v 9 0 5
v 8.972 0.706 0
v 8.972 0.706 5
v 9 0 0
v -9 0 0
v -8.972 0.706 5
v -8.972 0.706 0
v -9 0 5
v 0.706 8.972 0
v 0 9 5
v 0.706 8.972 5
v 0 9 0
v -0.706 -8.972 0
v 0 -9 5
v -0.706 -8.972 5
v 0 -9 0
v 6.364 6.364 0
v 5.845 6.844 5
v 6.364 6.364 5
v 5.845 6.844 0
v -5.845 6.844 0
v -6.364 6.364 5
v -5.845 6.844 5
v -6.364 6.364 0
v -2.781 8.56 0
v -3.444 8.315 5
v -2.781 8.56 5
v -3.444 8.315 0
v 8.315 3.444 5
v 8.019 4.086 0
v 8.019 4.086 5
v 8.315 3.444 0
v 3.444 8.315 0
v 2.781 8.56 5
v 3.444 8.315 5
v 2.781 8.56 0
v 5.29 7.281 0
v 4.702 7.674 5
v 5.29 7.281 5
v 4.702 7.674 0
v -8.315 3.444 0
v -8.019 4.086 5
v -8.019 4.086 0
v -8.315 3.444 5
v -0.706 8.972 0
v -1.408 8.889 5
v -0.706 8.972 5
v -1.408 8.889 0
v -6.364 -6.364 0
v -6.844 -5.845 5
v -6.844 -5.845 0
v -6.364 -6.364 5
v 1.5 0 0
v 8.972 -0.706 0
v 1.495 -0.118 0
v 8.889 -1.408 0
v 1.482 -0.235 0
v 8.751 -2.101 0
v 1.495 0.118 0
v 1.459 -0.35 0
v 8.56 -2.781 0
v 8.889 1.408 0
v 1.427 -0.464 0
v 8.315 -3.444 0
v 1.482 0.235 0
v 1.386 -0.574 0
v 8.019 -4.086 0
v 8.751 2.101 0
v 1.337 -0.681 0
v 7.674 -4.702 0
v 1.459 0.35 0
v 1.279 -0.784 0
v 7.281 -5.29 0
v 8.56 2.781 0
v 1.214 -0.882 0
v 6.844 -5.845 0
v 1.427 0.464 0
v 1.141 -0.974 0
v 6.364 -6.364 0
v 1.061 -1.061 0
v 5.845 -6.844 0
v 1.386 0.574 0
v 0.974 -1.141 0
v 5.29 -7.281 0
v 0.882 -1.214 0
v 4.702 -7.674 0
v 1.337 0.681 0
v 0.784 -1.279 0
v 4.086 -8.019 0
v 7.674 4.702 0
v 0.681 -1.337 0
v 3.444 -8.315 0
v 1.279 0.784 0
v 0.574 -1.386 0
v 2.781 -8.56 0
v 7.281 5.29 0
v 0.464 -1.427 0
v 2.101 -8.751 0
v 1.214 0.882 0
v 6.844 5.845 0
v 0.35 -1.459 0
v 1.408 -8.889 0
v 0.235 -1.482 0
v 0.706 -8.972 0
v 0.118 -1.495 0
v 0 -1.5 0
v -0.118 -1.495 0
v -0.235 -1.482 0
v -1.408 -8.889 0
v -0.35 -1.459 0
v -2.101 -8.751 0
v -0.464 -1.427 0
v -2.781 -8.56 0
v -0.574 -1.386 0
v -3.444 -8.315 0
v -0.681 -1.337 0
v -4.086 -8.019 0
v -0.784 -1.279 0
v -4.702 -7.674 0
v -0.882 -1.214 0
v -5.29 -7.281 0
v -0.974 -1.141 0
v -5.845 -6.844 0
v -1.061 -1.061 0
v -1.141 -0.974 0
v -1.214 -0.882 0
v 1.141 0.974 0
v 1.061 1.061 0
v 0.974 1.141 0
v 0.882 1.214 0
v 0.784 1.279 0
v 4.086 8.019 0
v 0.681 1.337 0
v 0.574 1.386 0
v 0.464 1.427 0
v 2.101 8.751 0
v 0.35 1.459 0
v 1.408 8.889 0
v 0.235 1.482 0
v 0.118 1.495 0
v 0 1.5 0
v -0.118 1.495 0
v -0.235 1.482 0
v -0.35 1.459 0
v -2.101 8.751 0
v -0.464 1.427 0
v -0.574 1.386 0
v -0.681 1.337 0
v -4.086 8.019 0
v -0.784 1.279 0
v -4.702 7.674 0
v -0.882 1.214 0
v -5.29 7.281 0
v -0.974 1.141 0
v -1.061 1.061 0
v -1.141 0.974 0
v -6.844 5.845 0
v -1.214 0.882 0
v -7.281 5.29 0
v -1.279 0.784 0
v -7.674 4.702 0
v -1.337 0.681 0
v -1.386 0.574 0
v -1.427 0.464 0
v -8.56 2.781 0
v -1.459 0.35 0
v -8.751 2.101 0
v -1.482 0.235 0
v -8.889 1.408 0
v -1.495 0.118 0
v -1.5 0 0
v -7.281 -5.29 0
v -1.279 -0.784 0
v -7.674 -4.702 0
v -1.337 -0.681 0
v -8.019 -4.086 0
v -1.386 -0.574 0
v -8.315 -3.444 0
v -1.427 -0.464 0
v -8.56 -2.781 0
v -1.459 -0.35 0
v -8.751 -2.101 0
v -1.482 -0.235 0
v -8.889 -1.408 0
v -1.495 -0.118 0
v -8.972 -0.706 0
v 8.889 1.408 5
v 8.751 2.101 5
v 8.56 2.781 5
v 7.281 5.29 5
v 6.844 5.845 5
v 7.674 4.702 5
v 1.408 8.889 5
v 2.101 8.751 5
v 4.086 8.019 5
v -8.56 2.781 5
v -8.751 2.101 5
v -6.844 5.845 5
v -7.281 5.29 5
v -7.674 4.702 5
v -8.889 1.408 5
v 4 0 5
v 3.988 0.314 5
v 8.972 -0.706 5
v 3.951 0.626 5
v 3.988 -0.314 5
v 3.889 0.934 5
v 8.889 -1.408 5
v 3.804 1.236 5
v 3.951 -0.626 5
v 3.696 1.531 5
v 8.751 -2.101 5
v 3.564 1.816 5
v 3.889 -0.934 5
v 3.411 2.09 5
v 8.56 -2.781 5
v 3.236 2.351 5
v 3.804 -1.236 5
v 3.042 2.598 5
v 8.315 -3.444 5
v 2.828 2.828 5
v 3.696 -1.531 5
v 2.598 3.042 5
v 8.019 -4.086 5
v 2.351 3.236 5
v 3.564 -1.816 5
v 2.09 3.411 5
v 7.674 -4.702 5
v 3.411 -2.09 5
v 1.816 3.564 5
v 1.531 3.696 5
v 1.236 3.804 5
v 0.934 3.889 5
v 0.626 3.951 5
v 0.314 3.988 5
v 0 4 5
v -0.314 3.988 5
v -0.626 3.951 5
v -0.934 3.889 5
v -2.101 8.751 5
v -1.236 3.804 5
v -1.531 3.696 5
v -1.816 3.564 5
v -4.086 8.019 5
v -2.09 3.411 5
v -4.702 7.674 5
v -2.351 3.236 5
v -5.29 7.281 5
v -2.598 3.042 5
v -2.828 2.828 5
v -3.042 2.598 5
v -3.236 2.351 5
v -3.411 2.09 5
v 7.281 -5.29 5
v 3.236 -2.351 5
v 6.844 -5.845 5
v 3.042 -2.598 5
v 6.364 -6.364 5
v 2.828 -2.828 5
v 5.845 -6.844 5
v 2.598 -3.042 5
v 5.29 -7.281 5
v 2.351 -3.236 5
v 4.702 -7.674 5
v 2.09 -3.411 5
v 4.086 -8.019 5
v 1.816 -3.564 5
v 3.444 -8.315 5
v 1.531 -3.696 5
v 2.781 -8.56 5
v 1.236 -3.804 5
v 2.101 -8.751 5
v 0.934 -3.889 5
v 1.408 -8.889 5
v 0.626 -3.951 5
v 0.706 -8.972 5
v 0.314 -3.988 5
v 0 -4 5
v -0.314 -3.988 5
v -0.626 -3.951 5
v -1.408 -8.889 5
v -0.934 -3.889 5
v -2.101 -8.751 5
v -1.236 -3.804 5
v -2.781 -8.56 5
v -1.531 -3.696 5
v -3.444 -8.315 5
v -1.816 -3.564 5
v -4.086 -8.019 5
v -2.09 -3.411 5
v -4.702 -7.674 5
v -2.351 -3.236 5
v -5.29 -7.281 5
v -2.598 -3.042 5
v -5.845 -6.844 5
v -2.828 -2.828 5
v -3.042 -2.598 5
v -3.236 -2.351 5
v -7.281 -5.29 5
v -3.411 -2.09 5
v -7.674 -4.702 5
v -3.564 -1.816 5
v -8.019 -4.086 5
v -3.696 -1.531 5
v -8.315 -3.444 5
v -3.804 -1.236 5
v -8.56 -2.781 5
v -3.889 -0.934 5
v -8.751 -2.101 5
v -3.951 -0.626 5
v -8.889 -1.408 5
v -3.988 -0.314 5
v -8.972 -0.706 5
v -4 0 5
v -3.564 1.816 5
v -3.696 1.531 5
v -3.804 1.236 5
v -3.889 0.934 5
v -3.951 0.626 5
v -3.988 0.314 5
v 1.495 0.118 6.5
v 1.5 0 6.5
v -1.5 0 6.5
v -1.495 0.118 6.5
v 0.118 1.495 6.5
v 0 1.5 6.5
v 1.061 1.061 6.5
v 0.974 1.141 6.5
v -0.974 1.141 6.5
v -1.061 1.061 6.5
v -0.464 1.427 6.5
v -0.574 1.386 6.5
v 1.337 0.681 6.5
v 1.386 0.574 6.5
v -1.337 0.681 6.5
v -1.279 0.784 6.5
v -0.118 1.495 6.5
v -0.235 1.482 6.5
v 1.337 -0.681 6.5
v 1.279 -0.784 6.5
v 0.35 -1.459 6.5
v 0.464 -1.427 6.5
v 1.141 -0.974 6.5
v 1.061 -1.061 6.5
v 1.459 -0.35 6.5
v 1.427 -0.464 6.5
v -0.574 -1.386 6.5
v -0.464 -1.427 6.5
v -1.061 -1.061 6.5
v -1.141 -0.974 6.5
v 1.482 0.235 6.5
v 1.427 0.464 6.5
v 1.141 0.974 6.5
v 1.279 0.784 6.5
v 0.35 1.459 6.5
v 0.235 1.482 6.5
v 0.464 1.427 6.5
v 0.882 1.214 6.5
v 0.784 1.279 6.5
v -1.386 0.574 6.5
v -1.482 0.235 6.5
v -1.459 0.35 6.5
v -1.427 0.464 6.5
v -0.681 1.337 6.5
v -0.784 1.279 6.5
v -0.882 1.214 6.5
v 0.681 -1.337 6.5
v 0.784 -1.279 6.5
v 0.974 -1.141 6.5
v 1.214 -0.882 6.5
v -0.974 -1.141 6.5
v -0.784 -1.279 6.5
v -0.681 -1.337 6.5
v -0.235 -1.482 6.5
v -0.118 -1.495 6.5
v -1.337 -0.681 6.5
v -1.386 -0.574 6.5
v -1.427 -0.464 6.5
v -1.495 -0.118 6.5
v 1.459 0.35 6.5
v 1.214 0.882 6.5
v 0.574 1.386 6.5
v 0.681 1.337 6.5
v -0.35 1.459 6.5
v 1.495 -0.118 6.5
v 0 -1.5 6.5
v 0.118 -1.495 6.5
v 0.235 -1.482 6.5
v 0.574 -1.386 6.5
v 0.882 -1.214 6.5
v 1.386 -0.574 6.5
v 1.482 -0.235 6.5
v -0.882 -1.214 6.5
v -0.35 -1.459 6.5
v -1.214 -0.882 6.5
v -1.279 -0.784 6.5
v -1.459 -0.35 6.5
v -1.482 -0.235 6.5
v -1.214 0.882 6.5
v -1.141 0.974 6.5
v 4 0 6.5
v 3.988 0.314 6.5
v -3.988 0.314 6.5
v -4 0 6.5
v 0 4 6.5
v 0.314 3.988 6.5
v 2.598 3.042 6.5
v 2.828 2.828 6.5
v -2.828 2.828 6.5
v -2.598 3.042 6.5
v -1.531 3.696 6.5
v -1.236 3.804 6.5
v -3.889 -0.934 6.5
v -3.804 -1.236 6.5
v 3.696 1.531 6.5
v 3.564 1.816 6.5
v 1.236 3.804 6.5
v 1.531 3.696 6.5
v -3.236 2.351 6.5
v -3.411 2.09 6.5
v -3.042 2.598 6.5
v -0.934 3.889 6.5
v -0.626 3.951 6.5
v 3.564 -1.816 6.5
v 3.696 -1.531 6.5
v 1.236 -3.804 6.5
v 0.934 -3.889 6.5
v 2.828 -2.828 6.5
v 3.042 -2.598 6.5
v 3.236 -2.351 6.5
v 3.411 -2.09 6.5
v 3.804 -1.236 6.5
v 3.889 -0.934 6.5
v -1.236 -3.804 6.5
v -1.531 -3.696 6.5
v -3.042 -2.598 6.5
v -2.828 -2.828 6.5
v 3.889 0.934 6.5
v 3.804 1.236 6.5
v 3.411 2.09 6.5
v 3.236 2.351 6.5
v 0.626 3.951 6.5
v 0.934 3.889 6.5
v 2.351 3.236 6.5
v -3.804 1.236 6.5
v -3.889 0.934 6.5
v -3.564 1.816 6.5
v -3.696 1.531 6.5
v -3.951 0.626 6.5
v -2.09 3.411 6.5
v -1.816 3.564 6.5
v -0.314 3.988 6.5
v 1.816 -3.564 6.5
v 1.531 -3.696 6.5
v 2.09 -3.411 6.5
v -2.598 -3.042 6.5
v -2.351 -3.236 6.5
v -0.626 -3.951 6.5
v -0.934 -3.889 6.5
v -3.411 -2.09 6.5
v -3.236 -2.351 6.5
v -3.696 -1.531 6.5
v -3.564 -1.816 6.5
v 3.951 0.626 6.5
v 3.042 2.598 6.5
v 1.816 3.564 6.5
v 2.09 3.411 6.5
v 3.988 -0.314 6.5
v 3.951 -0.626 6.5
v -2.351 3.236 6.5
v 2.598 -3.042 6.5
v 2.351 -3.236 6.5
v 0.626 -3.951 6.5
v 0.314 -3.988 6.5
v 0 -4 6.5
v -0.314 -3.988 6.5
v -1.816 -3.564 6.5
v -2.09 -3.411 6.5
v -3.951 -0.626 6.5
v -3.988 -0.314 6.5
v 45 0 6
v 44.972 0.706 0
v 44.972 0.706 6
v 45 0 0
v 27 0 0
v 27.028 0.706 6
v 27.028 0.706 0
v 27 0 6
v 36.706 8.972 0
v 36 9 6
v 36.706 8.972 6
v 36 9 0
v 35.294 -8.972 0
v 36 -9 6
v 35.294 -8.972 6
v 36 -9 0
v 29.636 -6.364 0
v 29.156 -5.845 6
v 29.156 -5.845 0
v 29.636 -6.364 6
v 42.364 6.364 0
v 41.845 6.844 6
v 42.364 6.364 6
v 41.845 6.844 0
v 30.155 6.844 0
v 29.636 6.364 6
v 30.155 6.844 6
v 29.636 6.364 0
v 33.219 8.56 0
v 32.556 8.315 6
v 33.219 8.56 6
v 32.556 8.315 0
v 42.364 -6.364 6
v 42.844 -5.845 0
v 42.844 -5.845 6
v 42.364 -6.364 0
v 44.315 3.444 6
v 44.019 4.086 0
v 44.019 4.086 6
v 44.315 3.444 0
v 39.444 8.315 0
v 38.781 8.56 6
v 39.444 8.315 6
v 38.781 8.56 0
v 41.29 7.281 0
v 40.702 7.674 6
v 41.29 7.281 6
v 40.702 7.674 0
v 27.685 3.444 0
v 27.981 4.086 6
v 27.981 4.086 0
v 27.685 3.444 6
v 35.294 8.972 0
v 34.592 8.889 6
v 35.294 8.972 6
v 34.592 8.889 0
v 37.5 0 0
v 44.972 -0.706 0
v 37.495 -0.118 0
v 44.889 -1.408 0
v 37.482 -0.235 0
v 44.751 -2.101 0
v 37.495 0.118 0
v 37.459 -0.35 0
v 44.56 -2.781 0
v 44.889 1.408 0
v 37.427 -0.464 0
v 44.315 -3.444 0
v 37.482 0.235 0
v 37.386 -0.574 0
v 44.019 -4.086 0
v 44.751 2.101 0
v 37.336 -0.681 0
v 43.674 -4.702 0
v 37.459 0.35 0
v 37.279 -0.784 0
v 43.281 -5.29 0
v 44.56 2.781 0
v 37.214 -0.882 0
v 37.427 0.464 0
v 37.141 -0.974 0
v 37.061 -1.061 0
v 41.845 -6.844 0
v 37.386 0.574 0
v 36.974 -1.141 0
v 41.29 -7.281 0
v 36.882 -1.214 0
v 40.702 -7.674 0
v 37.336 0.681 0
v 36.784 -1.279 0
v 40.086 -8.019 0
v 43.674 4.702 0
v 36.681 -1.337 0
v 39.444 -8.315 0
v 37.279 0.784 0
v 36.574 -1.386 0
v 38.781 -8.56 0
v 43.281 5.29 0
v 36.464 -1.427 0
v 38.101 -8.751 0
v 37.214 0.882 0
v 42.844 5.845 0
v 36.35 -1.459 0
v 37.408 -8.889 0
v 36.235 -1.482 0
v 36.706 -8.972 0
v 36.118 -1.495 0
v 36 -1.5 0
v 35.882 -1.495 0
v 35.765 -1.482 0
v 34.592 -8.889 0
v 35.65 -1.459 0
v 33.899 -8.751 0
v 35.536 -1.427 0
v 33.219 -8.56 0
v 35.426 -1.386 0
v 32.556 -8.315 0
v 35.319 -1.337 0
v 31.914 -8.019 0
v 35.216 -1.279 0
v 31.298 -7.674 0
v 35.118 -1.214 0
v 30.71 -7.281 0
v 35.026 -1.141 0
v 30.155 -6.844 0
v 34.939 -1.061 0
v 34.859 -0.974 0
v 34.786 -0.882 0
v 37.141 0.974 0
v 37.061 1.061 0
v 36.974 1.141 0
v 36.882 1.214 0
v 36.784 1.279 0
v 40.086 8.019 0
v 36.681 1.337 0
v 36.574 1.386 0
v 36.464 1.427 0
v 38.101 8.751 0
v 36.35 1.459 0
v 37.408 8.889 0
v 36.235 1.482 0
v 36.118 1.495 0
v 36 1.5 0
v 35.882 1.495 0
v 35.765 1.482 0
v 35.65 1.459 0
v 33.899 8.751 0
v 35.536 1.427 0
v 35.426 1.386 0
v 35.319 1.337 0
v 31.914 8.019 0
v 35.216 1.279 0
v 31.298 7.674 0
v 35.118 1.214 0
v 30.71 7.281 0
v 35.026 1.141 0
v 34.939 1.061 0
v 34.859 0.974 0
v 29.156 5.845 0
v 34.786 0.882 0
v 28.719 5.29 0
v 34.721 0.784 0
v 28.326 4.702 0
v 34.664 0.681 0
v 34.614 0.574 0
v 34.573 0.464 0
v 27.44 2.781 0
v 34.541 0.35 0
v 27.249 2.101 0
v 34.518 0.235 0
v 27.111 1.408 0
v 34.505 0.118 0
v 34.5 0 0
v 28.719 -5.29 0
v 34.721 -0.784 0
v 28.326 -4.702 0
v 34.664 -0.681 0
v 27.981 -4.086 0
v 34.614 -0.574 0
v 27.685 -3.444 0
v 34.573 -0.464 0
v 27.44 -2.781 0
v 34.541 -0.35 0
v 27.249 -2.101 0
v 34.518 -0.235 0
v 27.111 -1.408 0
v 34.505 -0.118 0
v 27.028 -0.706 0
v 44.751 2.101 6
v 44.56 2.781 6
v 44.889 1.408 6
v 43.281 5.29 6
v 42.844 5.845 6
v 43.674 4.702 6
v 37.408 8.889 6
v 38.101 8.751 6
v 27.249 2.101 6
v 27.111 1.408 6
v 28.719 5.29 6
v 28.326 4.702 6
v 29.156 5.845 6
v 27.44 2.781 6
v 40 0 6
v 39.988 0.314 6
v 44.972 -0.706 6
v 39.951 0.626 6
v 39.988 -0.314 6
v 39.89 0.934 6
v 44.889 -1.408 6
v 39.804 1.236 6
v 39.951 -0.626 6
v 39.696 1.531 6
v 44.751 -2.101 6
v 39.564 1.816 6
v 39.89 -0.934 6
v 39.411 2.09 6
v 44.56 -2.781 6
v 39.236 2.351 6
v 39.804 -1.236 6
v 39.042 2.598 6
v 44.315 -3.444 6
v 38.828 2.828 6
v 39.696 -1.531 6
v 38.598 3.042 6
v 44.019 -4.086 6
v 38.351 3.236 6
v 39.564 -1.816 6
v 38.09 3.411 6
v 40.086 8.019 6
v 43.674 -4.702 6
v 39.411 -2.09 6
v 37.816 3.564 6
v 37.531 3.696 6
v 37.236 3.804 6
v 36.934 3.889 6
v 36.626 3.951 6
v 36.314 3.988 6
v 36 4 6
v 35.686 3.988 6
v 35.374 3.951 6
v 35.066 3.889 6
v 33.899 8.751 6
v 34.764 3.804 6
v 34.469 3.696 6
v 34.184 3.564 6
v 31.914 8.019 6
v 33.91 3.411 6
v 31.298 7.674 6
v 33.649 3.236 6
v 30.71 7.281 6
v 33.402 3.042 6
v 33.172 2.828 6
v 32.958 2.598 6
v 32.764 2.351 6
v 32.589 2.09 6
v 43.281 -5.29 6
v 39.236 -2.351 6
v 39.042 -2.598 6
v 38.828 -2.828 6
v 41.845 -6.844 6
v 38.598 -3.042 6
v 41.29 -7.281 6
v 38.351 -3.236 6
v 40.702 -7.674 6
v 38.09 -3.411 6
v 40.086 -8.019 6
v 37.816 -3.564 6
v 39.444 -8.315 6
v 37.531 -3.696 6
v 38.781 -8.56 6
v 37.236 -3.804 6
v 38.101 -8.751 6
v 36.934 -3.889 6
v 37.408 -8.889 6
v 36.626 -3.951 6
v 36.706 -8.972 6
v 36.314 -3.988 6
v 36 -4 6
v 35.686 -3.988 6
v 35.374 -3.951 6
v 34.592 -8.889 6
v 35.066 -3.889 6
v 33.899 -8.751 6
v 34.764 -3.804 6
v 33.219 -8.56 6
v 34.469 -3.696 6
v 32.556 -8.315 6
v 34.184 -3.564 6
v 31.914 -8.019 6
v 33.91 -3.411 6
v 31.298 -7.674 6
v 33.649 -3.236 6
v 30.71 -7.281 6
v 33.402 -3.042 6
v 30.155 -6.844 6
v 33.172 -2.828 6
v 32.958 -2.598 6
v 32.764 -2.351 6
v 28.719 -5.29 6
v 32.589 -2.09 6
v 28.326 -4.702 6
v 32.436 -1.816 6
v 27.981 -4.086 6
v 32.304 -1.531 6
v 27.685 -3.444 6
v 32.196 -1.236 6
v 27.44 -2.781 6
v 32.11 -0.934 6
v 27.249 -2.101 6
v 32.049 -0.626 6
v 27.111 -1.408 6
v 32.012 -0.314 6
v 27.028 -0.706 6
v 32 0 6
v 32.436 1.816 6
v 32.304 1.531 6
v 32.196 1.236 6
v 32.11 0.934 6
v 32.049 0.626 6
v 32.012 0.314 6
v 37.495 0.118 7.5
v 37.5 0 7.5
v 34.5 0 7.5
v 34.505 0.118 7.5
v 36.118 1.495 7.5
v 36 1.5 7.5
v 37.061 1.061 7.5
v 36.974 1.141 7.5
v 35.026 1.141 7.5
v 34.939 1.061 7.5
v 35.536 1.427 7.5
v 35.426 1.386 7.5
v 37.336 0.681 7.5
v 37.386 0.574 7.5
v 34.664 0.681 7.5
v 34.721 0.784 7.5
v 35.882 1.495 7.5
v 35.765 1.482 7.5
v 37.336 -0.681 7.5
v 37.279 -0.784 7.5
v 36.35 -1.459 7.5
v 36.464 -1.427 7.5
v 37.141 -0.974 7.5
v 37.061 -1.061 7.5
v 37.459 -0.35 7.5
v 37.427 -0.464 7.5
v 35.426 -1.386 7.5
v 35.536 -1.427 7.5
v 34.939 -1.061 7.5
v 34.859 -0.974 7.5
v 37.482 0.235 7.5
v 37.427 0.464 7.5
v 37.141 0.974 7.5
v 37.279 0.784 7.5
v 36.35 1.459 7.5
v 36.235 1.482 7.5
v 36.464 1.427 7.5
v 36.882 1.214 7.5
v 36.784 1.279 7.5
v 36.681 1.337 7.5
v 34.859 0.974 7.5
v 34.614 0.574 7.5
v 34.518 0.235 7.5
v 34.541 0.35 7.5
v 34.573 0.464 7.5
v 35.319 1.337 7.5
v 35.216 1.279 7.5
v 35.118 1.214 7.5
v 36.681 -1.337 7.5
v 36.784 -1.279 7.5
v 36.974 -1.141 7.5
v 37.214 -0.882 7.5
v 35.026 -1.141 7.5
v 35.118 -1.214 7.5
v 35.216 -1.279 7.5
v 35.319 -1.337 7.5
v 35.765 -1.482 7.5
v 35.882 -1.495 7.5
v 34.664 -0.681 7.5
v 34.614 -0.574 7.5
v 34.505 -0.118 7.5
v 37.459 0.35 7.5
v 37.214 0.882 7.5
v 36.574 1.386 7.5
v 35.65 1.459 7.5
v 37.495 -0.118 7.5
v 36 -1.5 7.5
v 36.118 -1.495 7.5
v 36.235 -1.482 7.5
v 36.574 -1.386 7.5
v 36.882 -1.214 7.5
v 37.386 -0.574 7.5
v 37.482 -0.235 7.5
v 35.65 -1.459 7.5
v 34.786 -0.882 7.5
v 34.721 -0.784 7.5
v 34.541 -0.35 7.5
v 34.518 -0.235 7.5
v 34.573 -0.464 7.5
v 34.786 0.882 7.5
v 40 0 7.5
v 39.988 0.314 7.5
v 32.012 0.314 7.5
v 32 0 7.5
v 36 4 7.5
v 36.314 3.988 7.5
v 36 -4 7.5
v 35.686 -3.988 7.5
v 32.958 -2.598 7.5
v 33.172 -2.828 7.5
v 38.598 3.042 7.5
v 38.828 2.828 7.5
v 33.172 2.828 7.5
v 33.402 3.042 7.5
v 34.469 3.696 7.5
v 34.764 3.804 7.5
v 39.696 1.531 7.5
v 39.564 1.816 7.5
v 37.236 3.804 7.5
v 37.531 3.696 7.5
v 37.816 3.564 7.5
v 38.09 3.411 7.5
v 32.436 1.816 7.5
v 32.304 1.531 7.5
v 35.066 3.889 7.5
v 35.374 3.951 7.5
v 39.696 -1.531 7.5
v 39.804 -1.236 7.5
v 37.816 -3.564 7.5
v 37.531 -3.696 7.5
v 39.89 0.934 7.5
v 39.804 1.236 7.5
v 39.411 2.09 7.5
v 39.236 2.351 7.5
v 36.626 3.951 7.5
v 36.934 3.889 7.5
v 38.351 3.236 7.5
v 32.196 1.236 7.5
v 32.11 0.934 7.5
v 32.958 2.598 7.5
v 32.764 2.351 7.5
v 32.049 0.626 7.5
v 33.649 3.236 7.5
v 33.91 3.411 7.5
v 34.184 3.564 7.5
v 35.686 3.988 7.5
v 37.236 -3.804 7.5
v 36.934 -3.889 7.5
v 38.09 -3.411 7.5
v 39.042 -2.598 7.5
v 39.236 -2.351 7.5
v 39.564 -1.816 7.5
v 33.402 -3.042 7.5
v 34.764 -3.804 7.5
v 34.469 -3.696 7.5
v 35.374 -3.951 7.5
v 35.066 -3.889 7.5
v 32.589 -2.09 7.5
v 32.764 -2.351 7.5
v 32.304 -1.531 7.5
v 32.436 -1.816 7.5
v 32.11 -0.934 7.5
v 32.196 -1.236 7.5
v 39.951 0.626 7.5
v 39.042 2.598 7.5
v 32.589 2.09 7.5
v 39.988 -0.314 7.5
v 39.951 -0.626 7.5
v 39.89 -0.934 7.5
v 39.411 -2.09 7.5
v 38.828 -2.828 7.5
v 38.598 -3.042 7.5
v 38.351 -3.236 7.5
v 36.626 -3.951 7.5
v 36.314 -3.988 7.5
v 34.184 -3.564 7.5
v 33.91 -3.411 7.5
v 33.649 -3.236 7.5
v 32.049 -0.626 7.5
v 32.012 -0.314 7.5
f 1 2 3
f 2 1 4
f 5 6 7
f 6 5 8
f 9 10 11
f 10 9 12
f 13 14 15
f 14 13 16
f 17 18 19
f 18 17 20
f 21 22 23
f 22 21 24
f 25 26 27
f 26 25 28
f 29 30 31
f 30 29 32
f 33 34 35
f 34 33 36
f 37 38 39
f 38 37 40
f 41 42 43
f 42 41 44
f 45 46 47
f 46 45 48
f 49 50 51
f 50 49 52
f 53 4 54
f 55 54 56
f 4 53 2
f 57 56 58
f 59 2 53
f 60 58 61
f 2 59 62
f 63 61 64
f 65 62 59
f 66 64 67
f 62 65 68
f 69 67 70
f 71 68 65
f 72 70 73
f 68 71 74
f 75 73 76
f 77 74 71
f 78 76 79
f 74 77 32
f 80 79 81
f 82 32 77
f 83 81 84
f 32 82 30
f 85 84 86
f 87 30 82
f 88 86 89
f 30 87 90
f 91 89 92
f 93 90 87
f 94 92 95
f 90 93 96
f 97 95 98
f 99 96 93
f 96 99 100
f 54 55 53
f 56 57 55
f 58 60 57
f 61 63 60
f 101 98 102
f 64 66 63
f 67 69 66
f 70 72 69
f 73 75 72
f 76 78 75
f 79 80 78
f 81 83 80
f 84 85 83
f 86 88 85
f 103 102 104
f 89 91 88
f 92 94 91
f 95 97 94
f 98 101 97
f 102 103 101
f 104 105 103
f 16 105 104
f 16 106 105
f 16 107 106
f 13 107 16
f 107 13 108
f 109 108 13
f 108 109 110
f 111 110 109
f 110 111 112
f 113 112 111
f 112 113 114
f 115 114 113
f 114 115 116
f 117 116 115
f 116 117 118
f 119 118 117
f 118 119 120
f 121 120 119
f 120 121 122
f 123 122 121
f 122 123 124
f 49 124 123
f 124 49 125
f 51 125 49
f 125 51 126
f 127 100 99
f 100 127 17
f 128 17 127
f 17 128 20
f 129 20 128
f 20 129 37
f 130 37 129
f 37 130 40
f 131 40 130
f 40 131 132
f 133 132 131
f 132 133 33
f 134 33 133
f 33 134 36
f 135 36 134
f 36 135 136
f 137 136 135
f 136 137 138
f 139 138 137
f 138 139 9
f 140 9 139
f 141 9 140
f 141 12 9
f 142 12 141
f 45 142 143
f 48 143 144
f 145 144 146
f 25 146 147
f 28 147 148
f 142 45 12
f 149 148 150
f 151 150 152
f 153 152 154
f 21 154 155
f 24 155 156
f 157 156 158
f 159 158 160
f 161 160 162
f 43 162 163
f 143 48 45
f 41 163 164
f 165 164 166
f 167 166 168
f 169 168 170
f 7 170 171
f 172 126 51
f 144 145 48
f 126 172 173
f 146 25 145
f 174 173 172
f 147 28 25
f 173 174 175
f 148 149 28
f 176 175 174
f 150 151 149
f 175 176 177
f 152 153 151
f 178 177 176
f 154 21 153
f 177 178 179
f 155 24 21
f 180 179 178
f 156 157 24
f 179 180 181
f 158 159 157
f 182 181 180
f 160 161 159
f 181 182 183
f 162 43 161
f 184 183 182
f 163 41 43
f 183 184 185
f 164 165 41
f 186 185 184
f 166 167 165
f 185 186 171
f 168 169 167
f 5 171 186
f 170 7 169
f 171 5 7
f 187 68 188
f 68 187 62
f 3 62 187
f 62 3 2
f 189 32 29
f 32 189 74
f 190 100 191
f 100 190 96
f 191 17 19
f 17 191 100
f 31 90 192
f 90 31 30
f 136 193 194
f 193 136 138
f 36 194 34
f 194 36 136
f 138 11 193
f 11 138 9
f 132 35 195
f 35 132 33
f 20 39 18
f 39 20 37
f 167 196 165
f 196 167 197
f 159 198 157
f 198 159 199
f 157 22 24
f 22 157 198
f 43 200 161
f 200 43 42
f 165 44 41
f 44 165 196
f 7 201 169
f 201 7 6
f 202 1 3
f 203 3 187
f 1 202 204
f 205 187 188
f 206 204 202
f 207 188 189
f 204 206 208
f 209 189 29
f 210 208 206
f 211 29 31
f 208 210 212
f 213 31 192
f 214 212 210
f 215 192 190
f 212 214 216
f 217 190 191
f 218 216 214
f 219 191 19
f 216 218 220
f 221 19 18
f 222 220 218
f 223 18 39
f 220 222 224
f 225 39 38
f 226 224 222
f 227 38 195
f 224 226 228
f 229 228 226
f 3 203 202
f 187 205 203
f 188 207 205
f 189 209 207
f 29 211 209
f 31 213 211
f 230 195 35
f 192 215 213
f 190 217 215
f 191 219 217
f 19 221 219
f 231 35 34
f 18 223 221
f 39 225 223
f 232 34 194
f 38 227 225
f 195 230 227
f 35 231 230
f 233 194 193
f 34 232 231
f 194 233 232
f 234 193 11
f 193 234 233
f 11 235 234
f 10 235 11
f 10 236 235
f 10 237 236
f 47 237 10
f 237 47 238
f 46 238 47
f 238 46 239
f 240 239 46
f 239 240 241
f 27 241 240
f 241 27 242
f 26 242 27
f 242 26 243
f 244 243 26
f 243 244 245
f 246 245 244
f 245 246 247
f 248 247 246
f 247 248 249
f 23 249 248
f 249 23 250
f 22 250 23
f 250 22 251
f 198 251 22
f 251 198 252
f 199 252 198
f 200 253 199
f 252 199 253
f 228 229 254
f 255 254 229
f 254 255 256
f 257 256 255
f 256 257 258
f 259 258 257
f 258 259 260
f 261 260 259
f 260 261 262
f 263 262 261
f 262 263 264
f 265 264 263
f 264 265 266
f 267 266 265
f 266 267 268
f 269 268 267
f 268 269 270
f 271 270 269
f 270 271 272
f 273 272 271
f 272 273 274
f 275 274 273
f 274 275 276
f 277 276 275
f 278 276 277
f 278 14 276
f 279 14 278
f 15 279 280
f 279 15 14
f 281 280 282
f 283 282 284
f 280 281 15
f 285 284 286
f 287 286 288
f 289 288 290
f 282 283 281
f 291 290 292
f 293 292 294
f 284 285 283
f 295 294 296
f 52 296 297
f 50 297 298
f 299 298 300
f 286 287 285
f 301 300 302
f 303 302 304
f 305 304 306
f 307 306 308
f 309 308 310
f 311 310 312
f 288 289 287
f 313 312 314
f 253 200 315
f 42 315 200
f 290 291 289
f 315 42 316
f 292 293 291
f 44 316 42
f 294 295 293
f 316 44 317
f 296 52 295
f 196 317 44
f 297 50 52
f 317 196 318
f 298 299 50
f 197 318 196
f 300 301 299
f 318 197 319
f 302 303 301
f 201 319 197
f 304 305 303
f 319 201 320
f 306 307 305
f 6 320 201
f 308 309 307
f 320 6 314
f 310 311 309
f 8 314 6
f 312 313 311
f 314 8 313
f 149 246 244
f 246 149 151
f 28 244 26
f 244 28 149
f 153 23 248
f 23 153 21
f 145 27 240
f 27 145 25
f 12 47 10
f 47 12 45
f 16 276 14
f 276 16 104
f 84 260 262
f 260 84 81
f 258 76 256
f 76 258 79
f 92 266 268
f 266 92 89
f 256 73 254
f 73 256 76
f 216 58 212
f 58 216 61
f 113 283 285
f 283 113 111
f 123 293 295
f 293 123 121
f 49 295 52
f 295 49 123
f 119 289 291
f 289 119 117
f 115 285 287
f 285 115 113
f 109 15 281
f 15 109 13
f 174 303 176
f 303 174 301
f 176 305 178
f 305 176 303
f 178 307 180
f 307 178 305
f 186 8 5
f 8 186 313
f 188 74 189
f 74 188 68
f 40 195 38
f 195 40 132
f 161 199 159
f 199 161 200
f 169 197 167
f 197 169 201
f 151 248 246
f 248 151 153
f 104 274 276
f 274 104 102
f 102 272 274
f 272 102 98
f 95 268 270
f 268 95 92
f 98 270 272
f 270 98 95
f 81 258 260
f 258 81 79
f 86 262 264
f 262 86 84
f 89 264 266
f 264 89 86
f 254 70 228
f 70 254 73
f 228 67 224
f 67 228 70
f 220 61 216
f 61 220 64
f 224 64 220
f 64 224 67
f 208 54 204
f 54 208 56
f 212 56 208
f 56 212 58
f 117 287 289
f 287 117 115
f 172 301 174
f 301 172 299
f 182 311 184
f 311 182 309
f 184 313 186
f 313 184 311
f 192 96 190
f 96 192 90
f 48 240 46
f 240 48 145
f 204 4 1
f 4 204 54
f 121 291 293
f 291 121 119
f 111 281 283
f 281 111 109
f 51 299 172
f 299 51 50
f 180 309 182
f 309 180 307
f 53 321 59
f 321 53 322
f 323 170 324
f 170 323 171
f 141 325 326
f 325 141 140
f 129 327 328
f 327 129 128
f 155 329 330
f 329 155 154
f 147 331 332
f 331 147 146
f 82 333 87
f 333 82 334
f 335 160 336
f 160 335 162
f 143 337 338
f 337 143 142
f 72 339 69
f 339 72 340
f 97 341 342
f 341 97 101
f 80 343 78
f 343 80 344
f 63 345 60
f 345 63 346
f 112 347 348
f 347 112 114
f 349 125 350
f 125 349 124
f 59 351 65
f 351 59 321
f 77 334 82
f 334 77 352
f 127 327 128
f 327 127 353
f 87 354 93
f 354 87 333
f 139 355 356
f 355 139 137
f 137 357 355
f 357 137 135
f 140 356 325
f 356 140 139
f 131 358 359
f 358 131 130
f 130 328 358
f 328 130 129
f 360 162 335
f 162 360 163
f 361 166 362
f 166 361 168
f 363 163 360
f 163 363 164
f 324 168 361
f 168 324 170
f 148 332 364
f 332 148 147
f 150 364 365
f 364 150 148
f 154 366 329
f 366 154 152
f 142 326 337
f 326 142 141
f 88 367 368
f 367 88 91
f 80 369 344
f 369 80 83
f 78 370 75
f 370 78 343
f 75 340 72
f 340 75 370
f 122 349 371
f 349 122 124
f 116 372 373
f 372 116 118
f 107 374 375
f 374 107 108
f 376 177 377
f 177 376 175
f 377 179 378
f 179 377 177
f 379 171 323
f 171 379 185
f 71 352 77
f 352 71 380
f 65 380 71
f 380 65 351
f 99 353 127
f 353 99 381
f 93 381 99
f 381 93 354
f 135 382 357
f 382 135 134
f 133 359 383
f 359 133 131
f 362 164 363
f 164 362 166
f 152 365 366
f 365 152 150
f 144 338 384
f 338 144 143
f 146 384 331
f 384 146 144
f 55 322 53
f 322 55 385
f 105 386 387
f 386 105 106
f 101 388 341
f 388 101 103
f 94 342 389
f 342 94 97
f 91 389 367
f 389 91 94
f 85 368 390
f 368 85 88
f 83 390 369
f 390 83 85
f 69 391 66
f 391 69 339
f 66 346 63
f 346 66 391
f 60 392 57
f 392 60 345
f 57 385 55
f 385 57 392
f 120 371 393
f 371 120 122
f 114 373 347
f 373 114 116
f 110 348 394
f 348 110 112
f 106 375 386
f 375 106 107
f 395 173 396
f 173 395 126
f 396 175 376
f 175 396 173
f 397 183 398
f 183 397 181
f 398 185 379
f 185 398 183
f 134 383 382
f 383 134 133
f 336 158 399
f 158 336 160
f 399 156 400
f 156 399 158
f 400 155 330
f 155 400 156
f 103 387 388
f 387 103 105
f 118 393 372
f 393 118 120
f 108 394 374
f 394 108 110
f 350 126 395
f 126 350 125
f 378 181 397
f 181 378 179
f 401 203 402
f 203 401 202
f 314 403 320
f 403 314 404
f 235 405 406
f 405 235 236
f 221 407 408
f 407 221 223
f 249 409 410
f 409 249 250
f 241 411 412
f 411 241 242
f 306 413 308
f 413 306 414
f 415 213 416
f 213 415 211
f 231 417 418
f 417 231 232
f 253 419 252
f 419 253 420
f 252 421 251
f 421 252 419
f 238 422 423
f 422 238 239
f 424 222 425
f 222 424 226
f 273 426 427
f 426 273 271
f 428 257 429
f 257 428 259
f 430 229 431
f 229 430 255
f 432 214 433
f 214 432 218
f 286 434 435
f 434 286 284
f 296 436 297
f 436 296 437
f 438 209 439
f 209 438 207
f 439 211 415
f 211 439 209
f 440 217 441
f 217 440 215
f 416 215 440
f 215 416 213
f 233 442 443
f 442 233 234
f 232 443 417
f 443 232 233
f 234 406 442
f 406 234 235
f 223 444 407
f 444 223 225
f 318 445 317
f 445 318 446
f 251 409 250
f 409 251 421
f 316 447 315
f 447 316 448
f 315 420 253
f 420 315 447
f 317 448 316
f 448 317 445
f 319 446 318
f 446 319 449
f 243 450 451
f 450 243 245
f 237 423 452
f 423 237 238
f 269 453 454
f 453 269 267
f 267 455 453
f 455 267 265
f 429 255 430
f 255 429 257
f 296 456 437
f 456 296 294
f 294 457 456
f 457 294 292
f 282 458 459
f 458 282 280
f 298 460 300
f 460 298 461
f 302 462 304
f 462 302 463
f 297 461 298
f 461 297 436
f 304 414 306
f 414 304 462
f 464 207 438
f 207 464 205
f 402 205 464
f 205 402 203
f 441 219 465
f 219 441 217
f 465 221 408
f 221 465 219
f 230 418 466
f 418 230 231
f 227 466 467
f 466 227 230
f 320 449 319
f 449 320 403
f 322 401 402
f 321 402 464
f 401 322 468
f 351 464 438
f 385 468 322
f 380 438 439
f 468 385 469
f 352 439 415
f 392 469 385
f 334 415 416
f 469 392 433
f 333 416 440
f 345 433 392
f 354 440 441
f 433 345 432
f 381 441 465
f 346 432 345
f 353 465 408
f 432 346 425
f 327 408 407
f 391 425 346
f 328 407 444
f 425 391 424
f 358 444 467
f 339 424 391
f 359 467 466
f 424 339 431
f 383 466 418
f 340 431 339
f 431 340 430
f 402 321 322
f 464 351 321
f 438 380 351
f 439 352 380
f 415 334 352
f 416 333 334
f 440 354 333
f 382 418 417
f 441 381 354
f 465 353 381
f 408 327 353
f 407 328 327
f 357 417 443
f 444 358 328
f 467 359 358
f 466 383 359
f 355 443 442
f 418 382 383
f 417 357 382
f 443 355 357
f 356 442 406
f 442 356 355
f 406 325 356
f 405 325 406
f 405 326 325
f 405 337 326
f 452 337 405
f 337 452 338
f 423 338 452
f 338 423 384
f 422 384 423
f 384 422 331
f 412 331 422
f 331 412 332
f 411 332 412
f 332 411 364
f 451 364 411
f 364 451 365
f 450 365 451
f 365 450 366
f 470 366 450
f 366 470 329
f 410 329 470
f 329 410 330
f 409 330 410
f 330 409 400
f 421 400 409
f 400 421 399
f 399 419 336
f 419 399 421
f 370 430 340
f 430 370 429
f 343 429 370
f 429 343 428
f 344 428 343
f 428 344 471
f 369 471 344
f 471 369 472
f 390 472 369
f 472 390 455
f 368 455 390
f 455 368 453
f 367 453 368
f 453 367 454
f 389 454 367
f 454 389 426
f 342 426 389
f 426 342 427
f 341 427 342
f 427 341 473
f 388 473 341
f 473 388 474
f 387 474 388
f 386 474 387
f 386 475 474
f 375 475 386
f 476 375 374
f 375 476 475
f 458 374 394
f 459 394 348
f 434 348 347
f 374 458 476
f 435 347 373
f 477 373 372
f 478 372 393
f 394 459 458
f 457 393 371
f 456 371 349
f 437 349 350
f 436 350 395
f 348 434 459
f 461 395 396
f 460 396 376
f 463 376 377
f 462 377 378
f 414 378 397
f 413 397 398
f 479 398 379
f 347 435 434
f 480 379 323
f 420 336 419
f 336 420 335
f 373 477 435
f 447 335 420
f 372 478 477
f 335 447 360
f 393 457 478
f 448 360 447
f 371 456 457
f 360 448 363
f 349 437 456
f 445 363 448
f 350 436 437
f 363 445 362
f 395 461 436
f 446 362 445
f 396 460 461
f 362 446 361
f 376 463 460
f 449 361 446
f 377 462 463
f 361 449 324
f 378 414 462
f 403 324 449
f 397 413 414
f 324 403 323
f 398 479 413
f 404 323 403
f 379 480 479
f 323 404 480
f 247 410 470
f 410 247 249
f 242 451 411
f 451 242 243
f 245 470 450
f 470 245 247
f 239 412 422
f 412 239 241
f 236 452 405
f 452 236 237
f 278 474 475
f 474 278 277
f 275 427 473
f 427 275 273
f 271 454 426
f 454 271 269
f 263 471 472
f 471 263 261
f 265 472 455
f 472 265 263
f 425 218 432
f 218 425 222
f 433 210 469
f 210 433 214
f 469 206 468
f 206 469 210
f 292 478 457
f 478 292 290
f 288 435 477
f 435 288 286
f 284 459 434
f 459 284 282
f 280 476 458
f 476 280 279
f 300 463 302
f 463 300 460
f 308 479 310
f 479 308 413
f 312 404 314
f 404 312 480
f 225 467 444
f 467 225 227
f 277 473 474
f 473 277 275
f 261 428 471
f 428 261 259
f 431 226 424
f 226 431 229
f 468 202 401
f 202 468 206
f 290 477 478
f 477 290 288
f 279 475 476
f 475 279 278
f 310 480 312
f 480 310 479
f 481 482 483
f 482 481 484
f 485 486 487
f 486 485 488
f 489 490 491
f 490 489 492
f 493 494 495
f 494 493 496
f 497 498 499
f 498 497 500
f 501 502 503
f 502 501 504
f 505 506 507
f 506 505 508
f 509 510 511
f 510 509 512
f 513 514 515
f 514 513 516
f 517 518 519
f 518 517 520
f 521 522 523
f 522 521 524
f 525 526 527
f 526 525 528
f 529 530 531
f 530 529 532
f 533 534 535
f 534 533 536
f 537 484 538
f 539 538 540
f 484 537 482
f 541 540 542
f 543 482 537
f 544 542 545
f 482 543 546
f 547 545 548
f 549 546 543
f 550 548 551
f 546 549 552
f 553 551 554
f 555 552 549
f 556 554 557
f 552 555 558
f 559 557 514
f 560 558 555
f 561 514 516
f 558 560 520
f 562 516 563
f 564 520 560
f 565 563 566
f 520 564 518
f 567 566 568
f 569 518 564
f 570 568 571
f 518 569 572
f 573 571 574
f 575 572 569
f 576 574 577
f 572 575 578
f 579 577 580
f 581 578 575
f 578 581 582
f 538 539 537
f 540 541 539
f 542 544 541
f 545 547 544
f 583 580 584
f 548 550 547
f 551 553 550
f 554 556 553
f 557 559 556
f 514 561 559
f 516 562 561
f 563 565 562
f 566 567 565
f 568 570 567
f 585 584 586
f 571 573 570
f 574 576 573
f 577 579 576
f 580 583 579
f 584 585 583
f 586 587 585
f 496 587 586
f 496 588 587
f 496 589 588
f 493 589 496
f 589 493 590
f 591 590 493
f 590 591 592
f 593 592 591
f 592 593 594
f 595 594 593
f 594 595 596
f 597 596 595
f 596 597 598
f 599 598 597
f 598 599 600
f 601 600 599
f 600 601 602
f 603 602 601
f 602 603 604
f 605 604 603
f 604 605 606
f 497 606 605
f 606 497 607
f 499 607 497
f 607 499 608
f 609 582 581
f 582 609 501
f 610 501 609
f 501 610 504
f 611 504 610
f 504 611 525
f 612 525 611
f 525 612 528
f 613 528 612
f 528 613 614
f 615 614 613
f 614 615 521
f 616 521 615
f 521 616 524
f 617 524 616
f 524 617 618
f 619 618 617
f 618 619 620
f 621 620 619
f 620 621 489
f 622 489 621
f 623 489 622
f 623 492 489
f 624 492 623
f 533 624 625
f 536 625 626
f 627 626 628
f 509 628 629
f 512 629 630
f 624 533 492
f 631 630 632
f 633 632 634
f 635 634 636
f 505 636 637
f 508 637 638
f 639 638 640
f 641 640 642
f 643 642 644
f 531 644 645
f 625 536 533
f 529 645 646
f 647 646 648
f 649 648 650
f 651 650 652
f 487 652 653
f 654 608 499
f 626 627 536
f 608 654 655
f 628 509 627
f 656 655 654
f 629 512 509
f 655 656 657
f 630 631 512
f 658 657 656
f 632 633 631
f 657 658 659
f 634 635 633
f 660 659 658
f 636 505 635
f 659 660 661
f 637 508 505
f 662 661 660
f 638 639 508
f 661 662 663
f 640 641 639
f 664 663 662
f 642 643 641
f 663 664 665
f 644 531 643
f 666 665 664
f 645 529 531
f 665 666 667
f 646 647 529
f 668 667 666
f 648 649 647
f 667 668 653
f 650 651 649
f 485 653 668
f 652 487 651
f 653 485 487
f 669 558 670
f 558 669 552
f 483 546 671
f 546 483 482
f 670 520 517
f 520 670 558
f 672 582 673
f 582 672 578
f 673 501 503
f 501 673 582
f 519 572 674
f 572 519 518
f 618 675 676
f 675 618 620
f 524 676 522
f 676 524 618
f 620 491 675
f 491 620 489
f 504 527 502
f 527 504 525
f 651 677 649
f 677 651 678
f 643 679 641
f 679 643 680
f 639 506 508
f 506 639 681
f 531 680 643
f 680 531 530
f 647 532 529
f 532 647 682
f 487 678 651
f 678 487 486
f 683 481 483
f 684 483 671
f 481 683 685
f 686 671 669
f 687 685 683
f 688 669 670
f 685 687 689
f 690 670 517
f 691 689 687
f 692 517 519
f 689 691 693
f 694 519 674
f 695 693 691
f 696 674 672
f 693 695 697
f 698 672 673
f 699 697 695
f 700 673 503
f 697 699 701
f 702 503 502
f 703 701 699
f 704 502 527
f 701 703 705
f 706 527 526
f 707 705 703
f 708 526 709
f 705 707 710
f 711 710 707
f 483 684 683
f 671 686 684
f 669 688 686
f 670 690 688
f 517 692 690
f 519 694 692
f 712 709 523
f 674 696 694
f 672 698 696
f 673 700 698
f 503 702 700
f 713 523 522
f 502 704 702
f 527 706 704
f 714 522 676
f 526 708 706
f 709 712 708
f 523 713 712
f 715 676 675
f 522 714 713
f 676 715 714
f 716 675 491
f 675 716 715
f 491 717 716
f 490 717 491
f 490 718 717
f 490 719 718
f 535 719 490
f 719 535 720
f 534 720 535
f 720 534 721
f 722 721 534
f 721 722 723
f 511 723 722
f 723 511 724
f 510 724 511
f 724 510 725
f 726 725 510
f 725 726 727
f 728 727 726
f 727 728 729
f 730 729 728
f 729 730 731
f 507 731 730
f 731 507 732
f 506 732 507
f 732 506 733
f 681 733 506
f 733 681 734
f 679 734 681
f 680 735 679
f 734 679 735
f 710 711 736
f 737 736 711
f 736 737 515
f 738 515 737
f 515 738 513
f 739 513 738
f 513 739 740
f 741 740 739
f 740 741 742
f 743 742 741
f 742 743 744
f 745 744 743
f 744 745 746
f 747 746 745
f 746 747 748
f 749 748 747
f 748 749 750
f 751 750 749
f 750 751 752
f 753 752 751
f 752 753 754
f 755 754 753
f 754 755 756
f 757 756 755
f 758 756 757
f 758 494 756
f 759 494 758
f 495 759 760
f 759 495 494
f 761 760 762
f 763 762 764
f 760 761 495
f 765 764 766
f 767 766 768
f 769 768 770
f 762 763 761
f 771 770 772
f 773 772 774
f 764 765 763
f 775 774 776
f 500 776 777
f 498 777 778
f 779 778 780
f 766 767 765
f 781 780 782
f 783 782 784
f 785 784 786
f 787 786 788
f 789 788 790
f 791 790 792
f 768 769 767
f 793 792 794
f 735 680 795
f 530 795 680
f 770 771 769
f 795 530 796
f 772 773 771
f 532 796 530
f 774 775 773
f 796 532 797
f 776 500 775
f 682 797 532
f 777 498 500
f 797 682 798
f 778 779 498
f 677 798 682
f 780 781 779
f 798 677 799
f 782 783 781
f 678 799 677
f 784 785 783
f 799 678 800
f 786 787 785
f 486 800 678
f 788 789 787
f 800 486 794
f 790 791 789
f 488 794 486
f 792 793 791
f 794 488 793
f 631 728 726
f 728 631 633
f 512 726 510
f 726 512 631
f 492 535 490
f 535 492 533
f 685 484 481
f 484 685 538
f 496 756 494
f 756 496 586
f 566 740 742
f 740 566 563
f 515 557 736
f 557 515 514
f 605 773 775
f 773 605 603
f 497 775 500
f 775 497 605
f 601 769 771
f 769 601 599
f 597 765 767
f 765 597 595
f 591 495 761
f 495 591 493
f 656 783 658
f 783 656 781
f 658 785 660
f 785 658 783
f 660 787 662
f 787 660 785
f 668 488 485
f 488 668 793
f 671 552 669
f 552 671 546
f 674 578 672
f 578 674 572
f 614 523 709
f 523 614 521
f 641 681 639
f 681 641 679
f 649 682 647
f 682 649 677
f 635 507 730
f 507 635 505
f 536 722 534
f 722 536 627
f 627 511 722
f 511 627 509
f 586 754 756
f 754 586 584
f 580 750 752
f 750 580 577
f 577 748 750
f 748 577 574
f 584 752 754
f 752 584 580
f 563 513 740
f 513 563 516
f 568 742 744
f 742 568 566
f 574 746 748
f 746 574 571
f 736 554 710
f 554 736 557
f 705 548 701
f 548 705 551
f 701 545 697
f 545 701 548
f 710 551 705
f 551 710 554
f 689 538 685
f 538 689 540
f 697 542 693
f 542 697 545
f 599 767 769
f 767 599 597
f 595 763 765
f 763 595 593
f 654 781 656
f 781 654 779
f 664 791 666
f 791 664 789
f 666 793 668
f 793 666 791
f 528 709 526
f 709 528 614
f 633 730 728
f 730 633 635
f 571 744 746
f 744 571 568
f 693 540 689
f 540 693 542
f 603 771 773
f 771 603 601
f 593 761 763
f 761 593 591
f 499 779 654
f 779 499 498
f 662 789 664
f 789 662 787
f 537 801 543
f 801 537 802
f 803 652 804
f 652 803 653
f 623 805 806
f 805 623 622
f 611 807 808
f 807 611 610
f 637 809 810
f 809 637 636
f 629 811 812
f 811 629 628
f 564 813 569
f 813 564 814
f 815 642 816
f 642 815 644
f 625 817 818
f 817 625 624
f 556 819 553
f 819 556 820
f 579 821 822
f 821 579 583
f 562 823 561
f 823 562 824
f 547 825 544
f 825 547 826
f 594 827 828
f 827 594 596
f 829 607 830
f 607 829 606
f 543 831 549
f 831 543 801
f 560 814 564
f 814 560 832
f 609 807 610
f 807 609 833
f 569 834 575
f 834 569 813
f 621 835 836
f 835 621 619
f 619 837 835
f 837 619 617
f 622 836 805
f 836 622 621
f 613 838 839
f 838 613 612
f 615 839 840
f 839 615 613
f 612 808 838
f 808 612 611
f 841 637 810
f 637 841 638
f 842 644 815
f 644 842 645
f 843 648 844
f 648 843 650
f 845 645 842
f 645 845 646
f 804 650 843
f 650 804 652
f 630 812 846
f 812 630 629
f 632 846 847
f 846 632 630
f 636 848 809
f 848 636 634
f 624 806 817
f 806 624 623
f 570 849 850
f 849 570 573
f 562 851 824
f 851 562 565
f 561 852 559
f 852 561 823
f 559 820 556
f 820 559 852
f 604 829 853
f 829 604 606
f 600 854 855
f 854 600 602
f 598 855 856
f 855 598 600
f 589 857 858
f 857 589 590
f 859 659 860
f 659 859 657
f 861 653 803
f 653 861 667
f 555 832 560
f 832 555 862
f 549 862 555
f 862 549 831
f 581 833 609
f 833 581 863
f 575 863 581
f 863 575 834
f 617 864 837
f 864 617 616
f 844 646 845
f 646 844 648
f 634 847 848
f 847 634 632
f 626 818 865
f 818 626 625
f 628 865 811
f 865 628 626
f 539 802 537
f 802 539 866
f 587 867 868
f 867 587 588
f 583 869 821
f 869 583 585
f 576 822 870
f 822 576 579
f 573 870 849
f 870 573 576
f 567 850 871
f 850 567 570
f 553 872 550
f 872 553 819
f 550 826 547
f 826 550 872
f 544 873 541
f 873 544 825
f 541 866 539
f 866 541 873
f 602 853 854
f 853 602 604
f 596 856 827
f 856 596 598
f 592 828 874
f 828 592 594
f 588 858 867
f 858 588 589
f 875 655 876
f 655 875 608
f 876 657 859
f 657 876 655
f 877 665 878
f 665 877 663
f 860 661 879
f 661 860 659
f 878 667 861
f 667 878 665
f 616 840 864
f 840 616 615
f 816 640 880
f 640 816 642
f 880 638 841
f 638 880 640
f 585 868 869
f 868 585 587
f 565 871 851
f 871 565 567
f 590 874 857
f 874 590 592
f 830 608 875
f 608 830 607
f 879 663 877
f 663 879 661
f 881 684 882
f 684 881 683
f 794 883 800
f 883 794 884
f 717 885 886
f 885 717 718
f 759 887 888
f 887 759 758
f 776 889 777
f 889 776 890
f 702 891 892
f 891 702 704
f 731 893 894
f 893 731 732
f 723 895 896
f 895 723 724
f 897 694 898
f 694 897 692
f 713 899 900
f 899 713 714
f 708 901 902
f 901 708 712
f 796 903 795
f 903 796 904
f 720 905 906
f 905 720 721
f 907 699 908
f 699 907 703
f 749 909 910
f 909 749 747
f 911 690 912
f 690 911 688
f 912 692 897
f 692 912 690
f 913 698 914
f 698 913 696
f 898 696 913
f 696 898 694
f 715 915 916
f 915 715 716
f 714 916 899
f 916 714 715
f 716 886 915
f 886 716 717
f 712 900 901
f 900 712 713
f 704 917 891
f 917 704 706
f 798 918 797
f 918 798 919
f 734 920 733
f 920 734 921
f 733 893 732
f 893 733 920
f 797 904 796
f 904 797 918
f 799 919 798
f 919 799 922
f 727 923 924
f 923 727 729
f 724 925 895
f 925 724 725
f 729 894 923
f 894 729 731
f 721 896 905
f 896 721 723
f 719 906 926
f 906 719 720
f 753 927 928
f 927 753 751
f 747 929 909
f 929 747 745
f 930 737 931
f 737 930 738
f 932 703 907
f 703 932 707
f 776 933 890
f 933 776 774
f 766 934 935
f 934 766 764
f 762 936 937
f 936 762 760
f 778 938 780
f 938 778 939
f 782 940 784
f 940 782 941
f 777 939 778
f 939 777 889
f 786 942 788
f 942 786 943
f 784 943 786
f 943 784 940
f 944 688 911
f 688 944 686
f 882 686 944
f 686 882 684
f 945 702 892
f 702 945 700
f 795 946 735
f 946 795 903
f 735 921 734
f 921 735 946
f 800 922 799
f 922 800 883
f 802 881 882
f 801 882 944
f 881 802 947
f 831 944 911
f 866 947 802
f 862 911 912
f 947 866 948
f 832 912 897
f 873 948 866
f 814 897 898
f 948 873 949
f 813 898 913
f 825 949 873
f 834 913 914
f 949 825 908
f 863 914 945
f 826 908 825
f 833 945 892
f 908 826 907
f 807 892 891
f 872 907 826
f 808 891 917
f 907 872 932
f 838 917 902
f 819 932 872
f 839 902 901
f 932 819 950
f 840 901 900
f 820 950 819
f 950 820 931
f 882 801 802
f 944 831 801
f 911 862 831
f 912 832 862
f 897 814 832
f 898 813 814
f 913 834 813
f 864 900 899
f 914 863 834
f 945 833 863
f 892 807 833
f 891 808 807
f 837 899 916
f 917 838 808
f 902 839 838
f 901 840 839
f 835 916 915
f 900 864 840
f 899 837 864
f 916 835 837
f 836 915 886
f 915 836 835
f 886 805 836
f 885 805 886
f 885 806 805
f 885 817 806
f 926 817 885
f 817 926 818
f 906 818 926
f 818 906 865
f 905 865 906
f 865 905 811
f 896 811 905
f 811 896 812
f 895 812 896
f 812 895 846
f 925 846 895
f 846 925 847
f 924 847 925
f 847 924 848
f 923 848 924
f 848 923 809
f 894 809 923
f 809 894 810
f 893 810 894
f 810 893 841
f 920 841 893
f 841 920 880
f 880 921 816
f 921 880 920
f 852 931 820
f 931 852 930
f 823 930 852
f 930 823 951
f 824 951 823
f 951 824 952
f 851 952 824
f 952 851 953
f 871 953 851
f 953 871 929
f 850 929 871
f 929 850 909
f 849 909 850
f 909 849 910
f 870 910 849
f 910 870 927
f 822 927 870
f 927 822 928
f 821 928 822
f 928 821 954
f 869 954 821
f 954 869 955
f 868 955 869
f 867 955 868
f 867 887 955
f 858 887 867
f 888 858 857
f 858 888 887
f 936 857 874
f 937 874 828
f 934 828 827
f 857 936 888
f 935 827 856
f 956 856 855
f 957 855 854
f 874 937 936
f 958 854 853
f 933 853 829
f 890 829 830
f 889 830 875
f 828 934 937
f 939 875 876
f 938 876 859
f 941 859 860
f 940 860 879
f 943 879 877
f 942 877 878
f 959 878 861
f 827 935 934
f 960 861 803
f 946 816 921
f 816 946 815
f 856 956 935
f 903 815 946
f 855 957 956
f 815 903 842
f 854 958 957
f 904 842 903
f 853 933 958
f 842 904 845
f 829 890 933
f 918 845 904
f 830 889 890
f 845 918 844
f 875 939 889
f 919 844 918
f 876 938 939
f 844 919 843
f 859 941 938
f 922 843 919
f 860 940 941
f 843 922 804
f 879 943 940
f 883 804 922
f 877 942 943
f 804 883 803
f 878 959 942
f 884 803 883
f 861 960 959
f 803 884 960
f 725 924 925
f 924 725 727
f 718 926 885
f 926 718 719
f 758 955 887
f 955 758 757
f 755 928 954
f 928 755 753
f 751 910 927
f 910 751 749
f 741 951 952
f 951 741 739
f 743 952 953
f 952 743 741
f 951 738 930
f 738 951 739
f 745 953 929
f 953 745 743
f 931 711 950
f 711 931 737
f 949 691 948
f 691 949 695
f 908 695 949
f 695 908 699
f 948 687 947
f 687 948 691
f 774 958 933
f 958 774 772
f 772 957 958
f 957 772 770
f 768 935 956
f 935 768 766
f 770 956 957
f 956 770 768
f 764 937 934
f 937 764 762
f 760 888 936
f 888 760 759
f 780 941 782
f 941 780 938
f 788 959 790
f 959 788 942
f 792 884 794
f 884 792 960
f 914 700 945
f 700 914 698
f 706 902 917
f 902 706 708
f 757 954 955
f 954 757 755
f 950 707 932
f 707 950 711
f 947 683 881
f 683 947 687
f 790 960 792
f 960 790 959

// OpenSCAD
$fn=80;
RING_DIAMETER=18;
NOTCH_DIAMETER=8;
SCREW_HOLE=3;
HEIGHT=5;
NOTCH_HEIGHT=1.5;

module ring(diameter,height) { 
    difference() {
        cylinder(d=diameter, h=height);
        translate([0,0,-.5*height]) cylinder(d=SCREW_HOLE,h=2*height);
    }
}

union() {
    ring(RING_DIAMETER, HEIGHT);
    ring(NOTCH_DIAMETER, HEIGHT+NOTCH_HEIGHT);
}

translate([2*RING_DIAMETER,0,0]) {
    union() {
        ring(RING_DIAMETER, HEIGHT+1);
        ring(NOTCH_DIAMETER, HEIGHT+NOTCH_HEIGHT+1);
    }
}
